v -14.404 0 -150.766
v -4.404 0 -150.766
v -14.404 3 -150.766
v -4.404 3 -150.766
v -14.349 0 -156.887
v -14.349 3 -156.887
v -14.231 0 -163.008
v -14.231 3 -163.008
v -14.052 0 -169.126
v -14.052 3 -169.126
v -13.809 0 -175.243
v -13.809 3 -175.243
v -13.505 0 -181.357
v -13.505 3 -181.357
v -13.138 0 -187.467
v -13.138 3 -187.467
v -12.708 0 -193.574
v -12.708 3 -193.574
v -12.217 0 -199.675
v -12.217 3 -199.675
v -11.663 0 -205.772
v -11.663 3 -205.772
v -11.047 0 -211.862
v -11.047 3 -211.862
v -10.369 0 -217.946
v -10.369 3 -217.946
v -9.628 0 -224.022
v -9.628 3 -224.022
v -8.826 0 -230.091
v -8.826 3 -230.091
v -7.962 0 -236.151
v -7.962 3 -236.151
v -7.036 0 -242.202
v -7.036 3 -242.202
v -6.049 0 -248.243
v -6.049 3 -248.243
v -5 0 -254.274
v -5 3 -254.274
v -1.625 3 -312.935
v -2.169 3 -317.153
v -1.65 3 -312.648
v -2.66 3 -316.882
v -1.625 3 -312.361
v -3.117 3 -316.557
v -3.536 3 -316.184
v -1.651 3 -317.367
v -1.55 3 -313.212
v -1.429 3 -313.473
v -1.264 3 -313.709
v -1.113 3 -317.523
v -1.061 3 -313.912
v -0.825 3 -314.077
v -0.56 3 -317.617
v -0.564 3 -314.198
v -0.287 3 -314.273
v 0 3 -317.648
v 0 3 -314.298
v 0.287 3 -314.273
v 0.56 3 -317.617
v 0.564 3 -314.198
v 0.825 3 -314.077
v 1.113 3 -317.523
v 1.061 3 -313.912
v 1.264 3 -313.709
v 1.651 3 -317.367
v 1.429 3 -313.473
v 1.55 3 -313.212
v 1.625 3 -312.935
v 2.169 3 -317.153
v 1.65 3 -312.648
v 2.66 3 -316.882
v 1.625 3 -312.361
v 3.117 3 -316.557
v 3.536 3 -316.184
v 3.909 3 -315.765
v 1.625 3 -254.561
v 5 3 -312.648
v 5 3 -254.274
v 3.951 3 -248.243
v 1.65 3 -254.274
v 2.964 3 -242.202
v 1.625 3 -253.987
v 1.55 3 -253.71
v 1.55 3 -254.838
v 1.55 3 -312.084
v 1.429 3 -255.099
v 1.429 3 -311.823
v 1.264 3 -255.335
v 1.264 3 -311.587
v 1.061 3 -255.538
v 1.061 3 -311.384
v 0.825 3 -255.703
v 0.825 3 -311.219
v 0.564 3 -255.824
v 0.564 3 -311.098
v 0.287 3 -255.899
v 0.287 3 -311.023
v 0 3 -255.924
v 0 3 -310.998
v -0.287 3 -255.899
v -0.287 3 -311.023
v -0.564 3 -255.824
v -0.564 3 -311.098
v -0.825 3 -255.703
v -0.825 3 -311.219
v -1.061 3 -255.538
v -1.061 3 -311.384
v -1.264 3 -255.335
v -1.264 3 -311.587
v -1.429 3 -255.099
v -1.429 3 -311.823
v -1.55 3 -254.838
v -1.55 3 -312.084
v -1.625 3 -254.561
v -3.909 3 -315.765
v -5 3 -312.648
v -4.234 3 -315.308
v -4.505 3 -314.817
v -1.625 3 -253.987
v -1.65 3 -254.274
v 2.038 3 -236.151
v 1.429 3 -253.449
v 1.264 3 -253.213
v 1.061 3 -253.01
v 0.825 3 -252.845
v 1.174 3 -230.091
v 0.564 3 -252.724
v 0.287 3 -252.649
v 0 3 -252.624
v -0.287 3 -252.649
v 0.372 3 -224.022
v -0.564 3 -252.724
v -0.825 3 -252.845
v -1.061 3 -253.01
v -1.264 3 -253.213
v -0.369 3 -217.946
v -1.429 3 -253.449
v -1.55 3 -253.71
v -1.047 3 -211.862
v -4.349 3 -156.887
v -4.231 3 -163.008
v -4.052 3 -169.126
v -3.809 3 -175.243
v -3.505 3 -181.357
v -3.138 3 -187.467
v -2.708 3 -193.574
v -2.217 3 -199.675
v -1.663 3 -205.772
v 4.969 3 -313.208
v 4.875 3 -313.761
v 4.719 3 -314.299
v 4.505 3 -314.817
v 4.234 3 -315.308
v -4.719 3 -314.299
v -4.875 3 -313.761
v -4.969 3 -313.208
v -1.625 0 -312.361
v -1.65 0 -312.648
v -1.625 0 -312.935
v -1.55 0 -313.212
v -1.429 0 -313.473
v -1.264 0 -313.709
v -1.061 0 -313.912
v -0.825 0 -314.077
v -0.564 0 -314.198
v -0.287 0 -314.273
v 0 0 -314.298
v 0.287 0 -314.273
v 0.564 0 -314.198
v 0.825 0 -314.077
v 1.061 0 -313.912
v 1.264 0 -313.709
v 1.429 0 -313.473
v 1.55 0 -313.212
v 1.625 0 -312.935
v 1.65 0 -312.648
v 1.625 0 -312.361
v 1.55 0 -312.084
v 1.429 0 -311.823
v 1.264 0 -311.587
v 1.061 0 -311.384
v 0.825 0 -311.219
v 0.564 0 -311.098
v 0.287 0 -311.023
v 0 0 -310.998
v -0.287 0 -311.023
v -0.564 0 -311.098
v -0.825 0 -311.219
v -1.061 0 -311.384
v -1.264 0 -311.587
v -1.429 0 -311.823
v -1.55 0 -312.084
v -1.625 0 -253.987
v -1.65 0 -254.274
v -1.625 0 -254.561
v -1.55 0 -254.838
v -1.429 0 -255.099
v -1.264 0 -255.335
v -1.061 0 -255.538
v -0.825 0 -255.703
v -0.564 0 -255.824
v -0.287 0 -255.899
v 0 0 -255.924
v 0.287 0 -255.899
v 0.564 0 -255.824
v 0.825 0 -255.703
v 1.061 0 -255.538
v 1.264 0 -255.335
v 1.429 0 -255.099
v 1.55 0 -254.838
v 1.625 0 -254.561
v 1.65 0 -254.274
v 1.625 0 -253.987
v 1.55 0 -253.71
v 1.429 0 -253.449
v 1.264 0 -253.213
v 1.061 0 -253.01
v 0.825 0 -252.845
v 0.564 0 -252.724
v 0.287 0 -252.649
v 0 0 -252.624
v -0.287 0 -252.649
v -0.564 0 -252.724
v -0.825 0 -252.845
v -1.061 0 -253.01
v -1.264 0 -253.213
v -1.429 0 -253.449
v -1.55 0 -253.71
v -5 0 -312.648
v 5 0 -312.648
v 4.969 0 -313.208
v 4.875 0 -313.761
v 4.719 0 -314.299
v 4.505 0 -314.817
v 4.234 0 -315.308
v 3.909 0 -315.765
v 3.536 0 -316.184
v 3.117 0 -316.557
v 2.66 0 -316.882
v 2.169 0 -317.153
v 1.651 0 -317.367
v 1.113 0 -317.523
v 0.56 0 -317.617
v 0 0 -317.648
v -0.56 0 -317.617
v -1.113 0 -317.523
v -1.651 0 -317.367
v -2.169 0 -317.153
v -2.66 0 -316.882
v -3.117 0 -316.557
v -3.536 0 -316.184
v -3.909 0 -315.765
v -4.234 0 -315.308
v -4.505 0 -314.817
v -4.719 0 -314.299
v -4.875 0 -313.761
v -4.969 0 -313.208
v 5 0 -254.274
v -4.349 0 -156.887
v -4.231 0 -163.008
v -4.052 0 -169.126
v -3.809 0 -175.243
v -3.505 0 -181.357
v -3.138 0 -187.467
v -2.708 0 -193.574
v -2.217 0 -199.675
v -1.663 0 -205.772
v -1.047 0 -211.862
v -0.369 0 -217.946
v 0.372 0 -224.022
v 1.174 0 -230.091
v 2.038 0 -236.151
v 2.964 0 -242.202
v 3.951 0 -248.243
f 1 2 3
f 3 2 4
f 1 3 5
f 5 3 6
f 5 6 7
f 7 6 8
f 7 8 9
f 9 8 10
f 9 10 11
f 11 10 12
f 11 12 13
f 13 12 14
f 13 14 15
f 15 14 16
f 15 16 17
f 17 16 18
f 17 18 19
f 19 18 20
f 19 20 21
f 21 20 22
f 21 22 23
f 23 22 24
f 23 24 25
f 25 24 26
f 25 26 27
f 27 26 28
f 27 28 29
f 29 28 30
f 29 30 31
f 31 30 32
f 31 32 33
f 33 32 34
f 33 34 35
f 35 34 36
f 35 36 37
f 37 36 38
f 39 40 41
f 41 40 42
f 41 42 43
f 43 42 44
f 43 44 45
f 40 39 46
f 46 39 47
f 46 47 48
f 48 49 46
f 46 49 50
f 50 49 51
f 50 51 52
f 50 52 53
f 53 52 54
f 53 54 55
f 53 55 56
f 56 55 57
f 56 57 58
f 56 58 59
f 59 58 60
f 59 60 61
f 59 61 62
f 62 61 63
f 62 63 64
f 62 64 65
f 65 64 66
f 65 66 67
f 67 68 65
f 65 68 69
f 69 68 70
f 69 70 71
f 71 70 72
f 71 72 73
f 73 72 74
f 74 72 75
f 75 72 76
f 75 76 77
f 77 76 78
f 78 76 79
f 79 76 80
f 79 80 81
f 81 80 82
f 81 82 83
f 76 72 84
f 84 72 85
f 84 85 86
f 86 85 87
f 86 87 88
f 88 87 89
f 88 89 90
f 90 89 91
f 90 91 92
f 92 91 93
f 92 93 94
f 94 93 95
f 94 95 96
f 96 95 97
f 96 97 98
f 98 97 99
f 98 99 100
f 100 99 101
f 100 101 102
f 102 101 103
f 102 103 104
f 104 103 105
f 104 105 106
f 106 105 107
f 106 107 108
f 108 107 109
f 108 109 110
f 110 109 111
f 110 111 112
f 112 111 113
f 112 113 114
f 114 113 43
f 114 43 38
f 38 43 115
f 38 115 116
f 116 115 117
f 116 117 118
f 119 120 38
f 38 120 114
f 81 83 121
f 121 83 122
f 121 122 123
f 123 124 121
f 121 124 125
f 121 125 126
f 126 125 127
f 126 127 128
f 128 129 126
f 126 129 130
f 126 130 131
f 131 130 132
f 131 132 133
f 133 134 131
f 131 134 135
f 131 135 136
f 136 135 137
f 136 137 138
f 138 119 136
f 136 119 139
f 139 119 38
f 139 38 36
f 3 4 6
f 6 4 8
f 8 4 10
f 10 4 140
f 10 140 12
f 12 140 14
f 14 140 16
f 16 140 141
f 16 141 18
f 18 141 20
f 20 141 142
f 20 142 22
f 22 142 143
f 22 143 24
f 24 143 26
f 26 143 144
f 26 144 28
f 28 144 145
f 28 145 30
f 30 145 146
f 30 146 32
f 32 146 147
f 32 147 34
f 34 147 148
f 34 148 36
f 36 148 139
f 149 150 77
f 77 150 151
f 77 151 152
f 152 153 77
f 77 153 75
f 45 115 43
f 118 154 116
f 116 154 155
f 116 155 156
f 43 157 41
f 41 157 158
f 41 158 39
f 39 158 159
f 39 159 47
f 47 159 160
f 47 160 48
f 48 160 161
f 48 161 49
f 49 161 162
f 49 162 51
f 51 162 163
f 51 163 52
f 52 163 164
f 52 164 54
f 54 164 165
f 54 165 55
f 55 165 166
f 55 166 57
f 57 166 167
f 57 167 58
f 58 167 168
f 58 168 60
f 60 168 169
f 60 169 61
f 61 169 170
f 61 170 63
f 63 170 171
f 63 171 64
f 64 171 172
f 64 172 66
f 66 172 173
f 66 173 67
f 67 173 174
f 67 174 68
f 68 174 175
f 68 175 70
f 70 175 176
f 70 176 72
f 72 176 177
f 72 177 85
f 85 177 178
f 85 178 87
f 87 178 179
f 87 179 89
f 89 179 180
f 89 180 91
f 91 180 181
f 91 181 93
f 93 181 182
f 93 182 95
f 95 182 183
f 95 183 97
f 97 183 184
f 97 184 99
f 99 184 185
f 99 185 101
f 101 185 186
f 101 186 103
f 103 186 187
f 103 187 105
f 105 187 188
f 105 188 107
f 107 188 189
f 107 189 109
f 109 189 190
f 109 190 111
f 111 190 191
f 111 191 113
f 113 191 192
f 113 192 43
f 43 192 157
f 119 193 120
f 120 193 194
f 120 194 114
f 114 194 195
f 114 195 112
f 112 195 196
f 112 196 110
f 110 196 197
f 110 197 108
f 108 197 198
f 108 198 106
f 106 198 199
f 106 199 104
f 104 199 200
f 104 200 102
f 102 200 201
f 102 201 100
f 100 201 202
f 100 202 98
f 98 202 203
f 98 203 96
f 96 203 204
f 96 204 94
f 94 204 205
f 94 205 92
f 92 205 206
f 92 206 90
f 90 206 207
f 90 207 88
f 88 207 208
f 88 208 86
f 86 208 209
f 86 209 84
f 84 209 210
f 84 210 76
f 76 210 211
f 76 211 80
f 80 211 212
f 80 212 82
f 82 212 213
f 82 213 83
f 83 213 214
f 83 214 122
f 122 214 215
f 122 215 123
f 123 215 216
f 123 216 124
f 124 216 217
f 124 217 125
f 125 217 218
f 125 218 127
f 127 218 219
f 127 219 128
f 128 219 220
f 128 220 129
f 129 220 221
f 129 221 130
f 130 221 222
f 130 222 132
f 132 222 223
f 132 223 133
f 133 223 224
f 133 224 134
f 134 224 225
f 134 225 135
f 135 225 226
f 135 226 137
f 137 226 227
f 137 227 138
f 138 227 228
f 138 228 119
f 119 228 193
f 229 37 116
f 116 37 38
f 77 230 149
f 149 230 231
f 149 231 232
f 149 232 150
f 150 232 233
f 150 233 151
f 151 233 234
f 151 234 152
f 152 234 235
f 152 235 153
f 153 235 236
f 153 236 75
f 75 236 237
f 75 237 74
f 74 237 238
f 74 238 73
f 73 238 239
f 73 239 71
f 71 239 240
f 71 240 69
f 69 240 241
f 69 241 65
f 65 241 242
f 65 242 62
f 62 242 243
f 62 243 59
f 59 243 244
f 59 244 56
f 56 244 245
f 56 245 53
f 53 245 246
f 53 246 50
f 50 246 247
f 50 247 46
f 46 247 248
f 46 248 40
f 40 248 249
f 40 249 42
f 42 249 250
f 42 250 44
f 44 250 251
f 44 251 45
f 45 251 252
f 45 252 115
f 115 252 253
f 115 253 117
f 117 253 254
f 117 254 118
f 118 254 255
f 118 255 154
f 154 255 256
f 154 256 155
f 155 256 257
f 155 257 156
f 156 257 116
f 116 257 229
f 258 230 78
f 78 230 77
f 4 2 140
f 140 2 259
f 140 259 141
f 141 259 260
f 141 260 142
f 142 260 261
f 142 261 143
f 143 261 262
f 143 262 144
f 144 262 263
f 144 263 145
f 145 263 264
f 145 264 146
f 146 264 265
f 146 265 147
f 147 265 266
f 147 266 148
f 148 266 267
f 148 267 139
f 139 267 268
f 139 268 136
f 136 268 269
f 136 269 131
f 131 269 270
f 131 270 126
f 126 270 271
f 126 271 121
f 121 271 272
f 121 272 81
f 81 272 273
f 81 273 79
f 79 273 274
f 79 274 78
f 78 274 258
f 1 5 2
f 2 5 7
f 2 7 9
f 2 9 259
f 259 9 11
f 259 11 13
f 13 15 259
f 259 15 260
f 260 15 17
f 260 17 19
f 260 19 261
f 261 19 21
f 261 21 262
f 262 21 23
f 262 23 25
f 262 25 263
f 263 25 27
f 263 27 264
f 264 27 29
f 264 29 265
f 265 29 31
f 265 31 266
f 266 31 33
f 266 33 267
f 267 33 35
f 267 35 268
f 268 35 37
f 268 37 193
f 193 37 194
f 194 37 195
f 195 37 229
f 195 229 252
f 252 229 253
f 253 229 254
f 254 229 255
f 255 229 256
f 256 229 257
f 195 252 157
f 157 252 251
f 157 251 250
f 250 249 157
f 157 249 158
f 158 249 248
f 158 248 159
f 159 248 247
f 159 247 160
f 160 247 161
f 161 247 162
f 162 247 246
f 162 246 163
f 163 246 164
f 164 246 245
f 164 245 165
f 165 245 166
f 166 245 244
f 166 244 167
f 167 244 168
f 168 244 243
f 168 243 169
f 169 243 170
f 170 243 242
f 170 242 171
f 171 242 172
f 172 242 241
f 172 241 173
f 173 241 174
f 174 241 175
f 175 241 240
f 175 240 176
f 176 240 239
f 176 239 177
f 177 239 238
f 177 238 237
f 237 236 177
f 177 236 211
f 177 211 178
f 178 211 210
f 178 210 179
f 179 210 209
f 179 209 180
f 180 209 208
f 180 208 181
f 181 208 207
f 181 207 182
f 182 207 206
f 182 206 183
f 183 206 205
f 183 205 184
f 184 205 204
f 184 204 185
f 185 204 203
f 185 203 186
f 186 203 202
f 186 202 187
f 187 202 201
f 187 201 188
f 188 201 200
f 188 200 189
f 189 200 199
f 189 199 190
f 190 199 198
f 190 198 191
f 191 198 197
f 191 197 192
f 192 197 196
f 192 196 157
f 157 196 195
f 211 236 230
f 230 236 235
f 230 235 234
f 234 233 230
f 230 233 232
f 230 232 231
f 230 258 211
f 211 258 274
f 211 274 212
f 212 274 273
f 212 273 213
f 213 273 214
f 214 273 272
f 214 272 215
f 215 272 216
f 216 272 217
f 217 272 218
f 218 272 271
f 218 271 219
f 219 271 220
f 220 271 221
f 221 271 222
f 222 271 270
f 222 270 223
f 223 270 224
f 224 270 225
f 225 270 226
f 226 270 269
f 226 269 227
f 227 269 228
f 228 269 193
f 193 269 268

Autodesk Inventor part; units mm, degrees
ref_plane "YZ Plane" through (0, 0, 0) normal (1, 0, 0) x (0, 1, 0)
ref_plane "XZ Plane" through (0, 0, 0) normal (0, 1, 0) x (-1, 0, 0)
ref_plane "XY Plane" through (0, 0, 0) normal (0, 0, 1) x (1, 0, 0)
sketch "Sketch1" plane through (0, 0, 0) normal (0, 1, 0) x (-1, 0, 0)
  line L0 (0, 0) -> (0, -312.648) construction
  line L1 (5, 0) -> (5, -312.648)
  line L2 (-5, -312.648) -> (-5, 0)
  arc A0 (5, 0) -> (-5, 0) centre (0, 0) ccw
  arc A1 (-5, -312.648) -> (5, -312.648) centre (0, -312.648) ccw
  circle A2 centre (0, 0) radius 1.65
  circle A3 centre (0, -312.648) radius 1.65
  circle A4 centre (0, -42.6) radius 1.65
  circle A5 centre (0, -254.274) radius 1.65
  arc A6 (5, -254.274) -> (5, -42.6) centre (-585.5917, -148.437) ccw
  arc A7 (-5, -254.274) -> (-5, -42.6) centre (-595.5917, -148.437) ccw
  point P0 (0, -156.324)
  dimension "d0" = 3.3
  dimension "d1" = 3.3
  dimension "d2" = 10
  dimension "d3" = 312.648
  dimension "d10" = 3.3
  dimension "d11" = 42.6
  dimension "d12" = 3.3
  dimension "d13" = 254.274
  dimension "d16" = 600
  dimension "d17" = 600
extrude "Extrusion1" add sketch "Sketch1" along normal blind 3 contours L1 A1 L2 A7 A0 | A6 L1
sketch "Sketch2" plane through (0, 3, 0) normal (0, 1, 0) x (1, 0, 0)
  line L0 (-83.1437, 348.5388) -> (78.2815, 348.5388)
  line L1 (78.2815, 348.5388) -> (78.2815, -47.0064)
  line L2 (78.2815, -47.0064) -> (-83.1437, -47.0064)
  line L3 (-83.1437, -47.0064) -> (-83.1437, 348.5388)
  line L4 (-31.117, 331.0778) -> (31.6, 331.0778)
  line L5 (31.6, 331.0778) -> (31.6, 150.7662)
  line L6 (31.6, 150.7662) -> (-31.117, 150.7662)
  line L7 (-31.117, 150.7662) -> (-31.117, 331.0778)
  point P0 (0, 0)
extrude "Extrusion2" cut sketch "Sketch2" against normal blind 10
properties part number "Part_5_p2"
